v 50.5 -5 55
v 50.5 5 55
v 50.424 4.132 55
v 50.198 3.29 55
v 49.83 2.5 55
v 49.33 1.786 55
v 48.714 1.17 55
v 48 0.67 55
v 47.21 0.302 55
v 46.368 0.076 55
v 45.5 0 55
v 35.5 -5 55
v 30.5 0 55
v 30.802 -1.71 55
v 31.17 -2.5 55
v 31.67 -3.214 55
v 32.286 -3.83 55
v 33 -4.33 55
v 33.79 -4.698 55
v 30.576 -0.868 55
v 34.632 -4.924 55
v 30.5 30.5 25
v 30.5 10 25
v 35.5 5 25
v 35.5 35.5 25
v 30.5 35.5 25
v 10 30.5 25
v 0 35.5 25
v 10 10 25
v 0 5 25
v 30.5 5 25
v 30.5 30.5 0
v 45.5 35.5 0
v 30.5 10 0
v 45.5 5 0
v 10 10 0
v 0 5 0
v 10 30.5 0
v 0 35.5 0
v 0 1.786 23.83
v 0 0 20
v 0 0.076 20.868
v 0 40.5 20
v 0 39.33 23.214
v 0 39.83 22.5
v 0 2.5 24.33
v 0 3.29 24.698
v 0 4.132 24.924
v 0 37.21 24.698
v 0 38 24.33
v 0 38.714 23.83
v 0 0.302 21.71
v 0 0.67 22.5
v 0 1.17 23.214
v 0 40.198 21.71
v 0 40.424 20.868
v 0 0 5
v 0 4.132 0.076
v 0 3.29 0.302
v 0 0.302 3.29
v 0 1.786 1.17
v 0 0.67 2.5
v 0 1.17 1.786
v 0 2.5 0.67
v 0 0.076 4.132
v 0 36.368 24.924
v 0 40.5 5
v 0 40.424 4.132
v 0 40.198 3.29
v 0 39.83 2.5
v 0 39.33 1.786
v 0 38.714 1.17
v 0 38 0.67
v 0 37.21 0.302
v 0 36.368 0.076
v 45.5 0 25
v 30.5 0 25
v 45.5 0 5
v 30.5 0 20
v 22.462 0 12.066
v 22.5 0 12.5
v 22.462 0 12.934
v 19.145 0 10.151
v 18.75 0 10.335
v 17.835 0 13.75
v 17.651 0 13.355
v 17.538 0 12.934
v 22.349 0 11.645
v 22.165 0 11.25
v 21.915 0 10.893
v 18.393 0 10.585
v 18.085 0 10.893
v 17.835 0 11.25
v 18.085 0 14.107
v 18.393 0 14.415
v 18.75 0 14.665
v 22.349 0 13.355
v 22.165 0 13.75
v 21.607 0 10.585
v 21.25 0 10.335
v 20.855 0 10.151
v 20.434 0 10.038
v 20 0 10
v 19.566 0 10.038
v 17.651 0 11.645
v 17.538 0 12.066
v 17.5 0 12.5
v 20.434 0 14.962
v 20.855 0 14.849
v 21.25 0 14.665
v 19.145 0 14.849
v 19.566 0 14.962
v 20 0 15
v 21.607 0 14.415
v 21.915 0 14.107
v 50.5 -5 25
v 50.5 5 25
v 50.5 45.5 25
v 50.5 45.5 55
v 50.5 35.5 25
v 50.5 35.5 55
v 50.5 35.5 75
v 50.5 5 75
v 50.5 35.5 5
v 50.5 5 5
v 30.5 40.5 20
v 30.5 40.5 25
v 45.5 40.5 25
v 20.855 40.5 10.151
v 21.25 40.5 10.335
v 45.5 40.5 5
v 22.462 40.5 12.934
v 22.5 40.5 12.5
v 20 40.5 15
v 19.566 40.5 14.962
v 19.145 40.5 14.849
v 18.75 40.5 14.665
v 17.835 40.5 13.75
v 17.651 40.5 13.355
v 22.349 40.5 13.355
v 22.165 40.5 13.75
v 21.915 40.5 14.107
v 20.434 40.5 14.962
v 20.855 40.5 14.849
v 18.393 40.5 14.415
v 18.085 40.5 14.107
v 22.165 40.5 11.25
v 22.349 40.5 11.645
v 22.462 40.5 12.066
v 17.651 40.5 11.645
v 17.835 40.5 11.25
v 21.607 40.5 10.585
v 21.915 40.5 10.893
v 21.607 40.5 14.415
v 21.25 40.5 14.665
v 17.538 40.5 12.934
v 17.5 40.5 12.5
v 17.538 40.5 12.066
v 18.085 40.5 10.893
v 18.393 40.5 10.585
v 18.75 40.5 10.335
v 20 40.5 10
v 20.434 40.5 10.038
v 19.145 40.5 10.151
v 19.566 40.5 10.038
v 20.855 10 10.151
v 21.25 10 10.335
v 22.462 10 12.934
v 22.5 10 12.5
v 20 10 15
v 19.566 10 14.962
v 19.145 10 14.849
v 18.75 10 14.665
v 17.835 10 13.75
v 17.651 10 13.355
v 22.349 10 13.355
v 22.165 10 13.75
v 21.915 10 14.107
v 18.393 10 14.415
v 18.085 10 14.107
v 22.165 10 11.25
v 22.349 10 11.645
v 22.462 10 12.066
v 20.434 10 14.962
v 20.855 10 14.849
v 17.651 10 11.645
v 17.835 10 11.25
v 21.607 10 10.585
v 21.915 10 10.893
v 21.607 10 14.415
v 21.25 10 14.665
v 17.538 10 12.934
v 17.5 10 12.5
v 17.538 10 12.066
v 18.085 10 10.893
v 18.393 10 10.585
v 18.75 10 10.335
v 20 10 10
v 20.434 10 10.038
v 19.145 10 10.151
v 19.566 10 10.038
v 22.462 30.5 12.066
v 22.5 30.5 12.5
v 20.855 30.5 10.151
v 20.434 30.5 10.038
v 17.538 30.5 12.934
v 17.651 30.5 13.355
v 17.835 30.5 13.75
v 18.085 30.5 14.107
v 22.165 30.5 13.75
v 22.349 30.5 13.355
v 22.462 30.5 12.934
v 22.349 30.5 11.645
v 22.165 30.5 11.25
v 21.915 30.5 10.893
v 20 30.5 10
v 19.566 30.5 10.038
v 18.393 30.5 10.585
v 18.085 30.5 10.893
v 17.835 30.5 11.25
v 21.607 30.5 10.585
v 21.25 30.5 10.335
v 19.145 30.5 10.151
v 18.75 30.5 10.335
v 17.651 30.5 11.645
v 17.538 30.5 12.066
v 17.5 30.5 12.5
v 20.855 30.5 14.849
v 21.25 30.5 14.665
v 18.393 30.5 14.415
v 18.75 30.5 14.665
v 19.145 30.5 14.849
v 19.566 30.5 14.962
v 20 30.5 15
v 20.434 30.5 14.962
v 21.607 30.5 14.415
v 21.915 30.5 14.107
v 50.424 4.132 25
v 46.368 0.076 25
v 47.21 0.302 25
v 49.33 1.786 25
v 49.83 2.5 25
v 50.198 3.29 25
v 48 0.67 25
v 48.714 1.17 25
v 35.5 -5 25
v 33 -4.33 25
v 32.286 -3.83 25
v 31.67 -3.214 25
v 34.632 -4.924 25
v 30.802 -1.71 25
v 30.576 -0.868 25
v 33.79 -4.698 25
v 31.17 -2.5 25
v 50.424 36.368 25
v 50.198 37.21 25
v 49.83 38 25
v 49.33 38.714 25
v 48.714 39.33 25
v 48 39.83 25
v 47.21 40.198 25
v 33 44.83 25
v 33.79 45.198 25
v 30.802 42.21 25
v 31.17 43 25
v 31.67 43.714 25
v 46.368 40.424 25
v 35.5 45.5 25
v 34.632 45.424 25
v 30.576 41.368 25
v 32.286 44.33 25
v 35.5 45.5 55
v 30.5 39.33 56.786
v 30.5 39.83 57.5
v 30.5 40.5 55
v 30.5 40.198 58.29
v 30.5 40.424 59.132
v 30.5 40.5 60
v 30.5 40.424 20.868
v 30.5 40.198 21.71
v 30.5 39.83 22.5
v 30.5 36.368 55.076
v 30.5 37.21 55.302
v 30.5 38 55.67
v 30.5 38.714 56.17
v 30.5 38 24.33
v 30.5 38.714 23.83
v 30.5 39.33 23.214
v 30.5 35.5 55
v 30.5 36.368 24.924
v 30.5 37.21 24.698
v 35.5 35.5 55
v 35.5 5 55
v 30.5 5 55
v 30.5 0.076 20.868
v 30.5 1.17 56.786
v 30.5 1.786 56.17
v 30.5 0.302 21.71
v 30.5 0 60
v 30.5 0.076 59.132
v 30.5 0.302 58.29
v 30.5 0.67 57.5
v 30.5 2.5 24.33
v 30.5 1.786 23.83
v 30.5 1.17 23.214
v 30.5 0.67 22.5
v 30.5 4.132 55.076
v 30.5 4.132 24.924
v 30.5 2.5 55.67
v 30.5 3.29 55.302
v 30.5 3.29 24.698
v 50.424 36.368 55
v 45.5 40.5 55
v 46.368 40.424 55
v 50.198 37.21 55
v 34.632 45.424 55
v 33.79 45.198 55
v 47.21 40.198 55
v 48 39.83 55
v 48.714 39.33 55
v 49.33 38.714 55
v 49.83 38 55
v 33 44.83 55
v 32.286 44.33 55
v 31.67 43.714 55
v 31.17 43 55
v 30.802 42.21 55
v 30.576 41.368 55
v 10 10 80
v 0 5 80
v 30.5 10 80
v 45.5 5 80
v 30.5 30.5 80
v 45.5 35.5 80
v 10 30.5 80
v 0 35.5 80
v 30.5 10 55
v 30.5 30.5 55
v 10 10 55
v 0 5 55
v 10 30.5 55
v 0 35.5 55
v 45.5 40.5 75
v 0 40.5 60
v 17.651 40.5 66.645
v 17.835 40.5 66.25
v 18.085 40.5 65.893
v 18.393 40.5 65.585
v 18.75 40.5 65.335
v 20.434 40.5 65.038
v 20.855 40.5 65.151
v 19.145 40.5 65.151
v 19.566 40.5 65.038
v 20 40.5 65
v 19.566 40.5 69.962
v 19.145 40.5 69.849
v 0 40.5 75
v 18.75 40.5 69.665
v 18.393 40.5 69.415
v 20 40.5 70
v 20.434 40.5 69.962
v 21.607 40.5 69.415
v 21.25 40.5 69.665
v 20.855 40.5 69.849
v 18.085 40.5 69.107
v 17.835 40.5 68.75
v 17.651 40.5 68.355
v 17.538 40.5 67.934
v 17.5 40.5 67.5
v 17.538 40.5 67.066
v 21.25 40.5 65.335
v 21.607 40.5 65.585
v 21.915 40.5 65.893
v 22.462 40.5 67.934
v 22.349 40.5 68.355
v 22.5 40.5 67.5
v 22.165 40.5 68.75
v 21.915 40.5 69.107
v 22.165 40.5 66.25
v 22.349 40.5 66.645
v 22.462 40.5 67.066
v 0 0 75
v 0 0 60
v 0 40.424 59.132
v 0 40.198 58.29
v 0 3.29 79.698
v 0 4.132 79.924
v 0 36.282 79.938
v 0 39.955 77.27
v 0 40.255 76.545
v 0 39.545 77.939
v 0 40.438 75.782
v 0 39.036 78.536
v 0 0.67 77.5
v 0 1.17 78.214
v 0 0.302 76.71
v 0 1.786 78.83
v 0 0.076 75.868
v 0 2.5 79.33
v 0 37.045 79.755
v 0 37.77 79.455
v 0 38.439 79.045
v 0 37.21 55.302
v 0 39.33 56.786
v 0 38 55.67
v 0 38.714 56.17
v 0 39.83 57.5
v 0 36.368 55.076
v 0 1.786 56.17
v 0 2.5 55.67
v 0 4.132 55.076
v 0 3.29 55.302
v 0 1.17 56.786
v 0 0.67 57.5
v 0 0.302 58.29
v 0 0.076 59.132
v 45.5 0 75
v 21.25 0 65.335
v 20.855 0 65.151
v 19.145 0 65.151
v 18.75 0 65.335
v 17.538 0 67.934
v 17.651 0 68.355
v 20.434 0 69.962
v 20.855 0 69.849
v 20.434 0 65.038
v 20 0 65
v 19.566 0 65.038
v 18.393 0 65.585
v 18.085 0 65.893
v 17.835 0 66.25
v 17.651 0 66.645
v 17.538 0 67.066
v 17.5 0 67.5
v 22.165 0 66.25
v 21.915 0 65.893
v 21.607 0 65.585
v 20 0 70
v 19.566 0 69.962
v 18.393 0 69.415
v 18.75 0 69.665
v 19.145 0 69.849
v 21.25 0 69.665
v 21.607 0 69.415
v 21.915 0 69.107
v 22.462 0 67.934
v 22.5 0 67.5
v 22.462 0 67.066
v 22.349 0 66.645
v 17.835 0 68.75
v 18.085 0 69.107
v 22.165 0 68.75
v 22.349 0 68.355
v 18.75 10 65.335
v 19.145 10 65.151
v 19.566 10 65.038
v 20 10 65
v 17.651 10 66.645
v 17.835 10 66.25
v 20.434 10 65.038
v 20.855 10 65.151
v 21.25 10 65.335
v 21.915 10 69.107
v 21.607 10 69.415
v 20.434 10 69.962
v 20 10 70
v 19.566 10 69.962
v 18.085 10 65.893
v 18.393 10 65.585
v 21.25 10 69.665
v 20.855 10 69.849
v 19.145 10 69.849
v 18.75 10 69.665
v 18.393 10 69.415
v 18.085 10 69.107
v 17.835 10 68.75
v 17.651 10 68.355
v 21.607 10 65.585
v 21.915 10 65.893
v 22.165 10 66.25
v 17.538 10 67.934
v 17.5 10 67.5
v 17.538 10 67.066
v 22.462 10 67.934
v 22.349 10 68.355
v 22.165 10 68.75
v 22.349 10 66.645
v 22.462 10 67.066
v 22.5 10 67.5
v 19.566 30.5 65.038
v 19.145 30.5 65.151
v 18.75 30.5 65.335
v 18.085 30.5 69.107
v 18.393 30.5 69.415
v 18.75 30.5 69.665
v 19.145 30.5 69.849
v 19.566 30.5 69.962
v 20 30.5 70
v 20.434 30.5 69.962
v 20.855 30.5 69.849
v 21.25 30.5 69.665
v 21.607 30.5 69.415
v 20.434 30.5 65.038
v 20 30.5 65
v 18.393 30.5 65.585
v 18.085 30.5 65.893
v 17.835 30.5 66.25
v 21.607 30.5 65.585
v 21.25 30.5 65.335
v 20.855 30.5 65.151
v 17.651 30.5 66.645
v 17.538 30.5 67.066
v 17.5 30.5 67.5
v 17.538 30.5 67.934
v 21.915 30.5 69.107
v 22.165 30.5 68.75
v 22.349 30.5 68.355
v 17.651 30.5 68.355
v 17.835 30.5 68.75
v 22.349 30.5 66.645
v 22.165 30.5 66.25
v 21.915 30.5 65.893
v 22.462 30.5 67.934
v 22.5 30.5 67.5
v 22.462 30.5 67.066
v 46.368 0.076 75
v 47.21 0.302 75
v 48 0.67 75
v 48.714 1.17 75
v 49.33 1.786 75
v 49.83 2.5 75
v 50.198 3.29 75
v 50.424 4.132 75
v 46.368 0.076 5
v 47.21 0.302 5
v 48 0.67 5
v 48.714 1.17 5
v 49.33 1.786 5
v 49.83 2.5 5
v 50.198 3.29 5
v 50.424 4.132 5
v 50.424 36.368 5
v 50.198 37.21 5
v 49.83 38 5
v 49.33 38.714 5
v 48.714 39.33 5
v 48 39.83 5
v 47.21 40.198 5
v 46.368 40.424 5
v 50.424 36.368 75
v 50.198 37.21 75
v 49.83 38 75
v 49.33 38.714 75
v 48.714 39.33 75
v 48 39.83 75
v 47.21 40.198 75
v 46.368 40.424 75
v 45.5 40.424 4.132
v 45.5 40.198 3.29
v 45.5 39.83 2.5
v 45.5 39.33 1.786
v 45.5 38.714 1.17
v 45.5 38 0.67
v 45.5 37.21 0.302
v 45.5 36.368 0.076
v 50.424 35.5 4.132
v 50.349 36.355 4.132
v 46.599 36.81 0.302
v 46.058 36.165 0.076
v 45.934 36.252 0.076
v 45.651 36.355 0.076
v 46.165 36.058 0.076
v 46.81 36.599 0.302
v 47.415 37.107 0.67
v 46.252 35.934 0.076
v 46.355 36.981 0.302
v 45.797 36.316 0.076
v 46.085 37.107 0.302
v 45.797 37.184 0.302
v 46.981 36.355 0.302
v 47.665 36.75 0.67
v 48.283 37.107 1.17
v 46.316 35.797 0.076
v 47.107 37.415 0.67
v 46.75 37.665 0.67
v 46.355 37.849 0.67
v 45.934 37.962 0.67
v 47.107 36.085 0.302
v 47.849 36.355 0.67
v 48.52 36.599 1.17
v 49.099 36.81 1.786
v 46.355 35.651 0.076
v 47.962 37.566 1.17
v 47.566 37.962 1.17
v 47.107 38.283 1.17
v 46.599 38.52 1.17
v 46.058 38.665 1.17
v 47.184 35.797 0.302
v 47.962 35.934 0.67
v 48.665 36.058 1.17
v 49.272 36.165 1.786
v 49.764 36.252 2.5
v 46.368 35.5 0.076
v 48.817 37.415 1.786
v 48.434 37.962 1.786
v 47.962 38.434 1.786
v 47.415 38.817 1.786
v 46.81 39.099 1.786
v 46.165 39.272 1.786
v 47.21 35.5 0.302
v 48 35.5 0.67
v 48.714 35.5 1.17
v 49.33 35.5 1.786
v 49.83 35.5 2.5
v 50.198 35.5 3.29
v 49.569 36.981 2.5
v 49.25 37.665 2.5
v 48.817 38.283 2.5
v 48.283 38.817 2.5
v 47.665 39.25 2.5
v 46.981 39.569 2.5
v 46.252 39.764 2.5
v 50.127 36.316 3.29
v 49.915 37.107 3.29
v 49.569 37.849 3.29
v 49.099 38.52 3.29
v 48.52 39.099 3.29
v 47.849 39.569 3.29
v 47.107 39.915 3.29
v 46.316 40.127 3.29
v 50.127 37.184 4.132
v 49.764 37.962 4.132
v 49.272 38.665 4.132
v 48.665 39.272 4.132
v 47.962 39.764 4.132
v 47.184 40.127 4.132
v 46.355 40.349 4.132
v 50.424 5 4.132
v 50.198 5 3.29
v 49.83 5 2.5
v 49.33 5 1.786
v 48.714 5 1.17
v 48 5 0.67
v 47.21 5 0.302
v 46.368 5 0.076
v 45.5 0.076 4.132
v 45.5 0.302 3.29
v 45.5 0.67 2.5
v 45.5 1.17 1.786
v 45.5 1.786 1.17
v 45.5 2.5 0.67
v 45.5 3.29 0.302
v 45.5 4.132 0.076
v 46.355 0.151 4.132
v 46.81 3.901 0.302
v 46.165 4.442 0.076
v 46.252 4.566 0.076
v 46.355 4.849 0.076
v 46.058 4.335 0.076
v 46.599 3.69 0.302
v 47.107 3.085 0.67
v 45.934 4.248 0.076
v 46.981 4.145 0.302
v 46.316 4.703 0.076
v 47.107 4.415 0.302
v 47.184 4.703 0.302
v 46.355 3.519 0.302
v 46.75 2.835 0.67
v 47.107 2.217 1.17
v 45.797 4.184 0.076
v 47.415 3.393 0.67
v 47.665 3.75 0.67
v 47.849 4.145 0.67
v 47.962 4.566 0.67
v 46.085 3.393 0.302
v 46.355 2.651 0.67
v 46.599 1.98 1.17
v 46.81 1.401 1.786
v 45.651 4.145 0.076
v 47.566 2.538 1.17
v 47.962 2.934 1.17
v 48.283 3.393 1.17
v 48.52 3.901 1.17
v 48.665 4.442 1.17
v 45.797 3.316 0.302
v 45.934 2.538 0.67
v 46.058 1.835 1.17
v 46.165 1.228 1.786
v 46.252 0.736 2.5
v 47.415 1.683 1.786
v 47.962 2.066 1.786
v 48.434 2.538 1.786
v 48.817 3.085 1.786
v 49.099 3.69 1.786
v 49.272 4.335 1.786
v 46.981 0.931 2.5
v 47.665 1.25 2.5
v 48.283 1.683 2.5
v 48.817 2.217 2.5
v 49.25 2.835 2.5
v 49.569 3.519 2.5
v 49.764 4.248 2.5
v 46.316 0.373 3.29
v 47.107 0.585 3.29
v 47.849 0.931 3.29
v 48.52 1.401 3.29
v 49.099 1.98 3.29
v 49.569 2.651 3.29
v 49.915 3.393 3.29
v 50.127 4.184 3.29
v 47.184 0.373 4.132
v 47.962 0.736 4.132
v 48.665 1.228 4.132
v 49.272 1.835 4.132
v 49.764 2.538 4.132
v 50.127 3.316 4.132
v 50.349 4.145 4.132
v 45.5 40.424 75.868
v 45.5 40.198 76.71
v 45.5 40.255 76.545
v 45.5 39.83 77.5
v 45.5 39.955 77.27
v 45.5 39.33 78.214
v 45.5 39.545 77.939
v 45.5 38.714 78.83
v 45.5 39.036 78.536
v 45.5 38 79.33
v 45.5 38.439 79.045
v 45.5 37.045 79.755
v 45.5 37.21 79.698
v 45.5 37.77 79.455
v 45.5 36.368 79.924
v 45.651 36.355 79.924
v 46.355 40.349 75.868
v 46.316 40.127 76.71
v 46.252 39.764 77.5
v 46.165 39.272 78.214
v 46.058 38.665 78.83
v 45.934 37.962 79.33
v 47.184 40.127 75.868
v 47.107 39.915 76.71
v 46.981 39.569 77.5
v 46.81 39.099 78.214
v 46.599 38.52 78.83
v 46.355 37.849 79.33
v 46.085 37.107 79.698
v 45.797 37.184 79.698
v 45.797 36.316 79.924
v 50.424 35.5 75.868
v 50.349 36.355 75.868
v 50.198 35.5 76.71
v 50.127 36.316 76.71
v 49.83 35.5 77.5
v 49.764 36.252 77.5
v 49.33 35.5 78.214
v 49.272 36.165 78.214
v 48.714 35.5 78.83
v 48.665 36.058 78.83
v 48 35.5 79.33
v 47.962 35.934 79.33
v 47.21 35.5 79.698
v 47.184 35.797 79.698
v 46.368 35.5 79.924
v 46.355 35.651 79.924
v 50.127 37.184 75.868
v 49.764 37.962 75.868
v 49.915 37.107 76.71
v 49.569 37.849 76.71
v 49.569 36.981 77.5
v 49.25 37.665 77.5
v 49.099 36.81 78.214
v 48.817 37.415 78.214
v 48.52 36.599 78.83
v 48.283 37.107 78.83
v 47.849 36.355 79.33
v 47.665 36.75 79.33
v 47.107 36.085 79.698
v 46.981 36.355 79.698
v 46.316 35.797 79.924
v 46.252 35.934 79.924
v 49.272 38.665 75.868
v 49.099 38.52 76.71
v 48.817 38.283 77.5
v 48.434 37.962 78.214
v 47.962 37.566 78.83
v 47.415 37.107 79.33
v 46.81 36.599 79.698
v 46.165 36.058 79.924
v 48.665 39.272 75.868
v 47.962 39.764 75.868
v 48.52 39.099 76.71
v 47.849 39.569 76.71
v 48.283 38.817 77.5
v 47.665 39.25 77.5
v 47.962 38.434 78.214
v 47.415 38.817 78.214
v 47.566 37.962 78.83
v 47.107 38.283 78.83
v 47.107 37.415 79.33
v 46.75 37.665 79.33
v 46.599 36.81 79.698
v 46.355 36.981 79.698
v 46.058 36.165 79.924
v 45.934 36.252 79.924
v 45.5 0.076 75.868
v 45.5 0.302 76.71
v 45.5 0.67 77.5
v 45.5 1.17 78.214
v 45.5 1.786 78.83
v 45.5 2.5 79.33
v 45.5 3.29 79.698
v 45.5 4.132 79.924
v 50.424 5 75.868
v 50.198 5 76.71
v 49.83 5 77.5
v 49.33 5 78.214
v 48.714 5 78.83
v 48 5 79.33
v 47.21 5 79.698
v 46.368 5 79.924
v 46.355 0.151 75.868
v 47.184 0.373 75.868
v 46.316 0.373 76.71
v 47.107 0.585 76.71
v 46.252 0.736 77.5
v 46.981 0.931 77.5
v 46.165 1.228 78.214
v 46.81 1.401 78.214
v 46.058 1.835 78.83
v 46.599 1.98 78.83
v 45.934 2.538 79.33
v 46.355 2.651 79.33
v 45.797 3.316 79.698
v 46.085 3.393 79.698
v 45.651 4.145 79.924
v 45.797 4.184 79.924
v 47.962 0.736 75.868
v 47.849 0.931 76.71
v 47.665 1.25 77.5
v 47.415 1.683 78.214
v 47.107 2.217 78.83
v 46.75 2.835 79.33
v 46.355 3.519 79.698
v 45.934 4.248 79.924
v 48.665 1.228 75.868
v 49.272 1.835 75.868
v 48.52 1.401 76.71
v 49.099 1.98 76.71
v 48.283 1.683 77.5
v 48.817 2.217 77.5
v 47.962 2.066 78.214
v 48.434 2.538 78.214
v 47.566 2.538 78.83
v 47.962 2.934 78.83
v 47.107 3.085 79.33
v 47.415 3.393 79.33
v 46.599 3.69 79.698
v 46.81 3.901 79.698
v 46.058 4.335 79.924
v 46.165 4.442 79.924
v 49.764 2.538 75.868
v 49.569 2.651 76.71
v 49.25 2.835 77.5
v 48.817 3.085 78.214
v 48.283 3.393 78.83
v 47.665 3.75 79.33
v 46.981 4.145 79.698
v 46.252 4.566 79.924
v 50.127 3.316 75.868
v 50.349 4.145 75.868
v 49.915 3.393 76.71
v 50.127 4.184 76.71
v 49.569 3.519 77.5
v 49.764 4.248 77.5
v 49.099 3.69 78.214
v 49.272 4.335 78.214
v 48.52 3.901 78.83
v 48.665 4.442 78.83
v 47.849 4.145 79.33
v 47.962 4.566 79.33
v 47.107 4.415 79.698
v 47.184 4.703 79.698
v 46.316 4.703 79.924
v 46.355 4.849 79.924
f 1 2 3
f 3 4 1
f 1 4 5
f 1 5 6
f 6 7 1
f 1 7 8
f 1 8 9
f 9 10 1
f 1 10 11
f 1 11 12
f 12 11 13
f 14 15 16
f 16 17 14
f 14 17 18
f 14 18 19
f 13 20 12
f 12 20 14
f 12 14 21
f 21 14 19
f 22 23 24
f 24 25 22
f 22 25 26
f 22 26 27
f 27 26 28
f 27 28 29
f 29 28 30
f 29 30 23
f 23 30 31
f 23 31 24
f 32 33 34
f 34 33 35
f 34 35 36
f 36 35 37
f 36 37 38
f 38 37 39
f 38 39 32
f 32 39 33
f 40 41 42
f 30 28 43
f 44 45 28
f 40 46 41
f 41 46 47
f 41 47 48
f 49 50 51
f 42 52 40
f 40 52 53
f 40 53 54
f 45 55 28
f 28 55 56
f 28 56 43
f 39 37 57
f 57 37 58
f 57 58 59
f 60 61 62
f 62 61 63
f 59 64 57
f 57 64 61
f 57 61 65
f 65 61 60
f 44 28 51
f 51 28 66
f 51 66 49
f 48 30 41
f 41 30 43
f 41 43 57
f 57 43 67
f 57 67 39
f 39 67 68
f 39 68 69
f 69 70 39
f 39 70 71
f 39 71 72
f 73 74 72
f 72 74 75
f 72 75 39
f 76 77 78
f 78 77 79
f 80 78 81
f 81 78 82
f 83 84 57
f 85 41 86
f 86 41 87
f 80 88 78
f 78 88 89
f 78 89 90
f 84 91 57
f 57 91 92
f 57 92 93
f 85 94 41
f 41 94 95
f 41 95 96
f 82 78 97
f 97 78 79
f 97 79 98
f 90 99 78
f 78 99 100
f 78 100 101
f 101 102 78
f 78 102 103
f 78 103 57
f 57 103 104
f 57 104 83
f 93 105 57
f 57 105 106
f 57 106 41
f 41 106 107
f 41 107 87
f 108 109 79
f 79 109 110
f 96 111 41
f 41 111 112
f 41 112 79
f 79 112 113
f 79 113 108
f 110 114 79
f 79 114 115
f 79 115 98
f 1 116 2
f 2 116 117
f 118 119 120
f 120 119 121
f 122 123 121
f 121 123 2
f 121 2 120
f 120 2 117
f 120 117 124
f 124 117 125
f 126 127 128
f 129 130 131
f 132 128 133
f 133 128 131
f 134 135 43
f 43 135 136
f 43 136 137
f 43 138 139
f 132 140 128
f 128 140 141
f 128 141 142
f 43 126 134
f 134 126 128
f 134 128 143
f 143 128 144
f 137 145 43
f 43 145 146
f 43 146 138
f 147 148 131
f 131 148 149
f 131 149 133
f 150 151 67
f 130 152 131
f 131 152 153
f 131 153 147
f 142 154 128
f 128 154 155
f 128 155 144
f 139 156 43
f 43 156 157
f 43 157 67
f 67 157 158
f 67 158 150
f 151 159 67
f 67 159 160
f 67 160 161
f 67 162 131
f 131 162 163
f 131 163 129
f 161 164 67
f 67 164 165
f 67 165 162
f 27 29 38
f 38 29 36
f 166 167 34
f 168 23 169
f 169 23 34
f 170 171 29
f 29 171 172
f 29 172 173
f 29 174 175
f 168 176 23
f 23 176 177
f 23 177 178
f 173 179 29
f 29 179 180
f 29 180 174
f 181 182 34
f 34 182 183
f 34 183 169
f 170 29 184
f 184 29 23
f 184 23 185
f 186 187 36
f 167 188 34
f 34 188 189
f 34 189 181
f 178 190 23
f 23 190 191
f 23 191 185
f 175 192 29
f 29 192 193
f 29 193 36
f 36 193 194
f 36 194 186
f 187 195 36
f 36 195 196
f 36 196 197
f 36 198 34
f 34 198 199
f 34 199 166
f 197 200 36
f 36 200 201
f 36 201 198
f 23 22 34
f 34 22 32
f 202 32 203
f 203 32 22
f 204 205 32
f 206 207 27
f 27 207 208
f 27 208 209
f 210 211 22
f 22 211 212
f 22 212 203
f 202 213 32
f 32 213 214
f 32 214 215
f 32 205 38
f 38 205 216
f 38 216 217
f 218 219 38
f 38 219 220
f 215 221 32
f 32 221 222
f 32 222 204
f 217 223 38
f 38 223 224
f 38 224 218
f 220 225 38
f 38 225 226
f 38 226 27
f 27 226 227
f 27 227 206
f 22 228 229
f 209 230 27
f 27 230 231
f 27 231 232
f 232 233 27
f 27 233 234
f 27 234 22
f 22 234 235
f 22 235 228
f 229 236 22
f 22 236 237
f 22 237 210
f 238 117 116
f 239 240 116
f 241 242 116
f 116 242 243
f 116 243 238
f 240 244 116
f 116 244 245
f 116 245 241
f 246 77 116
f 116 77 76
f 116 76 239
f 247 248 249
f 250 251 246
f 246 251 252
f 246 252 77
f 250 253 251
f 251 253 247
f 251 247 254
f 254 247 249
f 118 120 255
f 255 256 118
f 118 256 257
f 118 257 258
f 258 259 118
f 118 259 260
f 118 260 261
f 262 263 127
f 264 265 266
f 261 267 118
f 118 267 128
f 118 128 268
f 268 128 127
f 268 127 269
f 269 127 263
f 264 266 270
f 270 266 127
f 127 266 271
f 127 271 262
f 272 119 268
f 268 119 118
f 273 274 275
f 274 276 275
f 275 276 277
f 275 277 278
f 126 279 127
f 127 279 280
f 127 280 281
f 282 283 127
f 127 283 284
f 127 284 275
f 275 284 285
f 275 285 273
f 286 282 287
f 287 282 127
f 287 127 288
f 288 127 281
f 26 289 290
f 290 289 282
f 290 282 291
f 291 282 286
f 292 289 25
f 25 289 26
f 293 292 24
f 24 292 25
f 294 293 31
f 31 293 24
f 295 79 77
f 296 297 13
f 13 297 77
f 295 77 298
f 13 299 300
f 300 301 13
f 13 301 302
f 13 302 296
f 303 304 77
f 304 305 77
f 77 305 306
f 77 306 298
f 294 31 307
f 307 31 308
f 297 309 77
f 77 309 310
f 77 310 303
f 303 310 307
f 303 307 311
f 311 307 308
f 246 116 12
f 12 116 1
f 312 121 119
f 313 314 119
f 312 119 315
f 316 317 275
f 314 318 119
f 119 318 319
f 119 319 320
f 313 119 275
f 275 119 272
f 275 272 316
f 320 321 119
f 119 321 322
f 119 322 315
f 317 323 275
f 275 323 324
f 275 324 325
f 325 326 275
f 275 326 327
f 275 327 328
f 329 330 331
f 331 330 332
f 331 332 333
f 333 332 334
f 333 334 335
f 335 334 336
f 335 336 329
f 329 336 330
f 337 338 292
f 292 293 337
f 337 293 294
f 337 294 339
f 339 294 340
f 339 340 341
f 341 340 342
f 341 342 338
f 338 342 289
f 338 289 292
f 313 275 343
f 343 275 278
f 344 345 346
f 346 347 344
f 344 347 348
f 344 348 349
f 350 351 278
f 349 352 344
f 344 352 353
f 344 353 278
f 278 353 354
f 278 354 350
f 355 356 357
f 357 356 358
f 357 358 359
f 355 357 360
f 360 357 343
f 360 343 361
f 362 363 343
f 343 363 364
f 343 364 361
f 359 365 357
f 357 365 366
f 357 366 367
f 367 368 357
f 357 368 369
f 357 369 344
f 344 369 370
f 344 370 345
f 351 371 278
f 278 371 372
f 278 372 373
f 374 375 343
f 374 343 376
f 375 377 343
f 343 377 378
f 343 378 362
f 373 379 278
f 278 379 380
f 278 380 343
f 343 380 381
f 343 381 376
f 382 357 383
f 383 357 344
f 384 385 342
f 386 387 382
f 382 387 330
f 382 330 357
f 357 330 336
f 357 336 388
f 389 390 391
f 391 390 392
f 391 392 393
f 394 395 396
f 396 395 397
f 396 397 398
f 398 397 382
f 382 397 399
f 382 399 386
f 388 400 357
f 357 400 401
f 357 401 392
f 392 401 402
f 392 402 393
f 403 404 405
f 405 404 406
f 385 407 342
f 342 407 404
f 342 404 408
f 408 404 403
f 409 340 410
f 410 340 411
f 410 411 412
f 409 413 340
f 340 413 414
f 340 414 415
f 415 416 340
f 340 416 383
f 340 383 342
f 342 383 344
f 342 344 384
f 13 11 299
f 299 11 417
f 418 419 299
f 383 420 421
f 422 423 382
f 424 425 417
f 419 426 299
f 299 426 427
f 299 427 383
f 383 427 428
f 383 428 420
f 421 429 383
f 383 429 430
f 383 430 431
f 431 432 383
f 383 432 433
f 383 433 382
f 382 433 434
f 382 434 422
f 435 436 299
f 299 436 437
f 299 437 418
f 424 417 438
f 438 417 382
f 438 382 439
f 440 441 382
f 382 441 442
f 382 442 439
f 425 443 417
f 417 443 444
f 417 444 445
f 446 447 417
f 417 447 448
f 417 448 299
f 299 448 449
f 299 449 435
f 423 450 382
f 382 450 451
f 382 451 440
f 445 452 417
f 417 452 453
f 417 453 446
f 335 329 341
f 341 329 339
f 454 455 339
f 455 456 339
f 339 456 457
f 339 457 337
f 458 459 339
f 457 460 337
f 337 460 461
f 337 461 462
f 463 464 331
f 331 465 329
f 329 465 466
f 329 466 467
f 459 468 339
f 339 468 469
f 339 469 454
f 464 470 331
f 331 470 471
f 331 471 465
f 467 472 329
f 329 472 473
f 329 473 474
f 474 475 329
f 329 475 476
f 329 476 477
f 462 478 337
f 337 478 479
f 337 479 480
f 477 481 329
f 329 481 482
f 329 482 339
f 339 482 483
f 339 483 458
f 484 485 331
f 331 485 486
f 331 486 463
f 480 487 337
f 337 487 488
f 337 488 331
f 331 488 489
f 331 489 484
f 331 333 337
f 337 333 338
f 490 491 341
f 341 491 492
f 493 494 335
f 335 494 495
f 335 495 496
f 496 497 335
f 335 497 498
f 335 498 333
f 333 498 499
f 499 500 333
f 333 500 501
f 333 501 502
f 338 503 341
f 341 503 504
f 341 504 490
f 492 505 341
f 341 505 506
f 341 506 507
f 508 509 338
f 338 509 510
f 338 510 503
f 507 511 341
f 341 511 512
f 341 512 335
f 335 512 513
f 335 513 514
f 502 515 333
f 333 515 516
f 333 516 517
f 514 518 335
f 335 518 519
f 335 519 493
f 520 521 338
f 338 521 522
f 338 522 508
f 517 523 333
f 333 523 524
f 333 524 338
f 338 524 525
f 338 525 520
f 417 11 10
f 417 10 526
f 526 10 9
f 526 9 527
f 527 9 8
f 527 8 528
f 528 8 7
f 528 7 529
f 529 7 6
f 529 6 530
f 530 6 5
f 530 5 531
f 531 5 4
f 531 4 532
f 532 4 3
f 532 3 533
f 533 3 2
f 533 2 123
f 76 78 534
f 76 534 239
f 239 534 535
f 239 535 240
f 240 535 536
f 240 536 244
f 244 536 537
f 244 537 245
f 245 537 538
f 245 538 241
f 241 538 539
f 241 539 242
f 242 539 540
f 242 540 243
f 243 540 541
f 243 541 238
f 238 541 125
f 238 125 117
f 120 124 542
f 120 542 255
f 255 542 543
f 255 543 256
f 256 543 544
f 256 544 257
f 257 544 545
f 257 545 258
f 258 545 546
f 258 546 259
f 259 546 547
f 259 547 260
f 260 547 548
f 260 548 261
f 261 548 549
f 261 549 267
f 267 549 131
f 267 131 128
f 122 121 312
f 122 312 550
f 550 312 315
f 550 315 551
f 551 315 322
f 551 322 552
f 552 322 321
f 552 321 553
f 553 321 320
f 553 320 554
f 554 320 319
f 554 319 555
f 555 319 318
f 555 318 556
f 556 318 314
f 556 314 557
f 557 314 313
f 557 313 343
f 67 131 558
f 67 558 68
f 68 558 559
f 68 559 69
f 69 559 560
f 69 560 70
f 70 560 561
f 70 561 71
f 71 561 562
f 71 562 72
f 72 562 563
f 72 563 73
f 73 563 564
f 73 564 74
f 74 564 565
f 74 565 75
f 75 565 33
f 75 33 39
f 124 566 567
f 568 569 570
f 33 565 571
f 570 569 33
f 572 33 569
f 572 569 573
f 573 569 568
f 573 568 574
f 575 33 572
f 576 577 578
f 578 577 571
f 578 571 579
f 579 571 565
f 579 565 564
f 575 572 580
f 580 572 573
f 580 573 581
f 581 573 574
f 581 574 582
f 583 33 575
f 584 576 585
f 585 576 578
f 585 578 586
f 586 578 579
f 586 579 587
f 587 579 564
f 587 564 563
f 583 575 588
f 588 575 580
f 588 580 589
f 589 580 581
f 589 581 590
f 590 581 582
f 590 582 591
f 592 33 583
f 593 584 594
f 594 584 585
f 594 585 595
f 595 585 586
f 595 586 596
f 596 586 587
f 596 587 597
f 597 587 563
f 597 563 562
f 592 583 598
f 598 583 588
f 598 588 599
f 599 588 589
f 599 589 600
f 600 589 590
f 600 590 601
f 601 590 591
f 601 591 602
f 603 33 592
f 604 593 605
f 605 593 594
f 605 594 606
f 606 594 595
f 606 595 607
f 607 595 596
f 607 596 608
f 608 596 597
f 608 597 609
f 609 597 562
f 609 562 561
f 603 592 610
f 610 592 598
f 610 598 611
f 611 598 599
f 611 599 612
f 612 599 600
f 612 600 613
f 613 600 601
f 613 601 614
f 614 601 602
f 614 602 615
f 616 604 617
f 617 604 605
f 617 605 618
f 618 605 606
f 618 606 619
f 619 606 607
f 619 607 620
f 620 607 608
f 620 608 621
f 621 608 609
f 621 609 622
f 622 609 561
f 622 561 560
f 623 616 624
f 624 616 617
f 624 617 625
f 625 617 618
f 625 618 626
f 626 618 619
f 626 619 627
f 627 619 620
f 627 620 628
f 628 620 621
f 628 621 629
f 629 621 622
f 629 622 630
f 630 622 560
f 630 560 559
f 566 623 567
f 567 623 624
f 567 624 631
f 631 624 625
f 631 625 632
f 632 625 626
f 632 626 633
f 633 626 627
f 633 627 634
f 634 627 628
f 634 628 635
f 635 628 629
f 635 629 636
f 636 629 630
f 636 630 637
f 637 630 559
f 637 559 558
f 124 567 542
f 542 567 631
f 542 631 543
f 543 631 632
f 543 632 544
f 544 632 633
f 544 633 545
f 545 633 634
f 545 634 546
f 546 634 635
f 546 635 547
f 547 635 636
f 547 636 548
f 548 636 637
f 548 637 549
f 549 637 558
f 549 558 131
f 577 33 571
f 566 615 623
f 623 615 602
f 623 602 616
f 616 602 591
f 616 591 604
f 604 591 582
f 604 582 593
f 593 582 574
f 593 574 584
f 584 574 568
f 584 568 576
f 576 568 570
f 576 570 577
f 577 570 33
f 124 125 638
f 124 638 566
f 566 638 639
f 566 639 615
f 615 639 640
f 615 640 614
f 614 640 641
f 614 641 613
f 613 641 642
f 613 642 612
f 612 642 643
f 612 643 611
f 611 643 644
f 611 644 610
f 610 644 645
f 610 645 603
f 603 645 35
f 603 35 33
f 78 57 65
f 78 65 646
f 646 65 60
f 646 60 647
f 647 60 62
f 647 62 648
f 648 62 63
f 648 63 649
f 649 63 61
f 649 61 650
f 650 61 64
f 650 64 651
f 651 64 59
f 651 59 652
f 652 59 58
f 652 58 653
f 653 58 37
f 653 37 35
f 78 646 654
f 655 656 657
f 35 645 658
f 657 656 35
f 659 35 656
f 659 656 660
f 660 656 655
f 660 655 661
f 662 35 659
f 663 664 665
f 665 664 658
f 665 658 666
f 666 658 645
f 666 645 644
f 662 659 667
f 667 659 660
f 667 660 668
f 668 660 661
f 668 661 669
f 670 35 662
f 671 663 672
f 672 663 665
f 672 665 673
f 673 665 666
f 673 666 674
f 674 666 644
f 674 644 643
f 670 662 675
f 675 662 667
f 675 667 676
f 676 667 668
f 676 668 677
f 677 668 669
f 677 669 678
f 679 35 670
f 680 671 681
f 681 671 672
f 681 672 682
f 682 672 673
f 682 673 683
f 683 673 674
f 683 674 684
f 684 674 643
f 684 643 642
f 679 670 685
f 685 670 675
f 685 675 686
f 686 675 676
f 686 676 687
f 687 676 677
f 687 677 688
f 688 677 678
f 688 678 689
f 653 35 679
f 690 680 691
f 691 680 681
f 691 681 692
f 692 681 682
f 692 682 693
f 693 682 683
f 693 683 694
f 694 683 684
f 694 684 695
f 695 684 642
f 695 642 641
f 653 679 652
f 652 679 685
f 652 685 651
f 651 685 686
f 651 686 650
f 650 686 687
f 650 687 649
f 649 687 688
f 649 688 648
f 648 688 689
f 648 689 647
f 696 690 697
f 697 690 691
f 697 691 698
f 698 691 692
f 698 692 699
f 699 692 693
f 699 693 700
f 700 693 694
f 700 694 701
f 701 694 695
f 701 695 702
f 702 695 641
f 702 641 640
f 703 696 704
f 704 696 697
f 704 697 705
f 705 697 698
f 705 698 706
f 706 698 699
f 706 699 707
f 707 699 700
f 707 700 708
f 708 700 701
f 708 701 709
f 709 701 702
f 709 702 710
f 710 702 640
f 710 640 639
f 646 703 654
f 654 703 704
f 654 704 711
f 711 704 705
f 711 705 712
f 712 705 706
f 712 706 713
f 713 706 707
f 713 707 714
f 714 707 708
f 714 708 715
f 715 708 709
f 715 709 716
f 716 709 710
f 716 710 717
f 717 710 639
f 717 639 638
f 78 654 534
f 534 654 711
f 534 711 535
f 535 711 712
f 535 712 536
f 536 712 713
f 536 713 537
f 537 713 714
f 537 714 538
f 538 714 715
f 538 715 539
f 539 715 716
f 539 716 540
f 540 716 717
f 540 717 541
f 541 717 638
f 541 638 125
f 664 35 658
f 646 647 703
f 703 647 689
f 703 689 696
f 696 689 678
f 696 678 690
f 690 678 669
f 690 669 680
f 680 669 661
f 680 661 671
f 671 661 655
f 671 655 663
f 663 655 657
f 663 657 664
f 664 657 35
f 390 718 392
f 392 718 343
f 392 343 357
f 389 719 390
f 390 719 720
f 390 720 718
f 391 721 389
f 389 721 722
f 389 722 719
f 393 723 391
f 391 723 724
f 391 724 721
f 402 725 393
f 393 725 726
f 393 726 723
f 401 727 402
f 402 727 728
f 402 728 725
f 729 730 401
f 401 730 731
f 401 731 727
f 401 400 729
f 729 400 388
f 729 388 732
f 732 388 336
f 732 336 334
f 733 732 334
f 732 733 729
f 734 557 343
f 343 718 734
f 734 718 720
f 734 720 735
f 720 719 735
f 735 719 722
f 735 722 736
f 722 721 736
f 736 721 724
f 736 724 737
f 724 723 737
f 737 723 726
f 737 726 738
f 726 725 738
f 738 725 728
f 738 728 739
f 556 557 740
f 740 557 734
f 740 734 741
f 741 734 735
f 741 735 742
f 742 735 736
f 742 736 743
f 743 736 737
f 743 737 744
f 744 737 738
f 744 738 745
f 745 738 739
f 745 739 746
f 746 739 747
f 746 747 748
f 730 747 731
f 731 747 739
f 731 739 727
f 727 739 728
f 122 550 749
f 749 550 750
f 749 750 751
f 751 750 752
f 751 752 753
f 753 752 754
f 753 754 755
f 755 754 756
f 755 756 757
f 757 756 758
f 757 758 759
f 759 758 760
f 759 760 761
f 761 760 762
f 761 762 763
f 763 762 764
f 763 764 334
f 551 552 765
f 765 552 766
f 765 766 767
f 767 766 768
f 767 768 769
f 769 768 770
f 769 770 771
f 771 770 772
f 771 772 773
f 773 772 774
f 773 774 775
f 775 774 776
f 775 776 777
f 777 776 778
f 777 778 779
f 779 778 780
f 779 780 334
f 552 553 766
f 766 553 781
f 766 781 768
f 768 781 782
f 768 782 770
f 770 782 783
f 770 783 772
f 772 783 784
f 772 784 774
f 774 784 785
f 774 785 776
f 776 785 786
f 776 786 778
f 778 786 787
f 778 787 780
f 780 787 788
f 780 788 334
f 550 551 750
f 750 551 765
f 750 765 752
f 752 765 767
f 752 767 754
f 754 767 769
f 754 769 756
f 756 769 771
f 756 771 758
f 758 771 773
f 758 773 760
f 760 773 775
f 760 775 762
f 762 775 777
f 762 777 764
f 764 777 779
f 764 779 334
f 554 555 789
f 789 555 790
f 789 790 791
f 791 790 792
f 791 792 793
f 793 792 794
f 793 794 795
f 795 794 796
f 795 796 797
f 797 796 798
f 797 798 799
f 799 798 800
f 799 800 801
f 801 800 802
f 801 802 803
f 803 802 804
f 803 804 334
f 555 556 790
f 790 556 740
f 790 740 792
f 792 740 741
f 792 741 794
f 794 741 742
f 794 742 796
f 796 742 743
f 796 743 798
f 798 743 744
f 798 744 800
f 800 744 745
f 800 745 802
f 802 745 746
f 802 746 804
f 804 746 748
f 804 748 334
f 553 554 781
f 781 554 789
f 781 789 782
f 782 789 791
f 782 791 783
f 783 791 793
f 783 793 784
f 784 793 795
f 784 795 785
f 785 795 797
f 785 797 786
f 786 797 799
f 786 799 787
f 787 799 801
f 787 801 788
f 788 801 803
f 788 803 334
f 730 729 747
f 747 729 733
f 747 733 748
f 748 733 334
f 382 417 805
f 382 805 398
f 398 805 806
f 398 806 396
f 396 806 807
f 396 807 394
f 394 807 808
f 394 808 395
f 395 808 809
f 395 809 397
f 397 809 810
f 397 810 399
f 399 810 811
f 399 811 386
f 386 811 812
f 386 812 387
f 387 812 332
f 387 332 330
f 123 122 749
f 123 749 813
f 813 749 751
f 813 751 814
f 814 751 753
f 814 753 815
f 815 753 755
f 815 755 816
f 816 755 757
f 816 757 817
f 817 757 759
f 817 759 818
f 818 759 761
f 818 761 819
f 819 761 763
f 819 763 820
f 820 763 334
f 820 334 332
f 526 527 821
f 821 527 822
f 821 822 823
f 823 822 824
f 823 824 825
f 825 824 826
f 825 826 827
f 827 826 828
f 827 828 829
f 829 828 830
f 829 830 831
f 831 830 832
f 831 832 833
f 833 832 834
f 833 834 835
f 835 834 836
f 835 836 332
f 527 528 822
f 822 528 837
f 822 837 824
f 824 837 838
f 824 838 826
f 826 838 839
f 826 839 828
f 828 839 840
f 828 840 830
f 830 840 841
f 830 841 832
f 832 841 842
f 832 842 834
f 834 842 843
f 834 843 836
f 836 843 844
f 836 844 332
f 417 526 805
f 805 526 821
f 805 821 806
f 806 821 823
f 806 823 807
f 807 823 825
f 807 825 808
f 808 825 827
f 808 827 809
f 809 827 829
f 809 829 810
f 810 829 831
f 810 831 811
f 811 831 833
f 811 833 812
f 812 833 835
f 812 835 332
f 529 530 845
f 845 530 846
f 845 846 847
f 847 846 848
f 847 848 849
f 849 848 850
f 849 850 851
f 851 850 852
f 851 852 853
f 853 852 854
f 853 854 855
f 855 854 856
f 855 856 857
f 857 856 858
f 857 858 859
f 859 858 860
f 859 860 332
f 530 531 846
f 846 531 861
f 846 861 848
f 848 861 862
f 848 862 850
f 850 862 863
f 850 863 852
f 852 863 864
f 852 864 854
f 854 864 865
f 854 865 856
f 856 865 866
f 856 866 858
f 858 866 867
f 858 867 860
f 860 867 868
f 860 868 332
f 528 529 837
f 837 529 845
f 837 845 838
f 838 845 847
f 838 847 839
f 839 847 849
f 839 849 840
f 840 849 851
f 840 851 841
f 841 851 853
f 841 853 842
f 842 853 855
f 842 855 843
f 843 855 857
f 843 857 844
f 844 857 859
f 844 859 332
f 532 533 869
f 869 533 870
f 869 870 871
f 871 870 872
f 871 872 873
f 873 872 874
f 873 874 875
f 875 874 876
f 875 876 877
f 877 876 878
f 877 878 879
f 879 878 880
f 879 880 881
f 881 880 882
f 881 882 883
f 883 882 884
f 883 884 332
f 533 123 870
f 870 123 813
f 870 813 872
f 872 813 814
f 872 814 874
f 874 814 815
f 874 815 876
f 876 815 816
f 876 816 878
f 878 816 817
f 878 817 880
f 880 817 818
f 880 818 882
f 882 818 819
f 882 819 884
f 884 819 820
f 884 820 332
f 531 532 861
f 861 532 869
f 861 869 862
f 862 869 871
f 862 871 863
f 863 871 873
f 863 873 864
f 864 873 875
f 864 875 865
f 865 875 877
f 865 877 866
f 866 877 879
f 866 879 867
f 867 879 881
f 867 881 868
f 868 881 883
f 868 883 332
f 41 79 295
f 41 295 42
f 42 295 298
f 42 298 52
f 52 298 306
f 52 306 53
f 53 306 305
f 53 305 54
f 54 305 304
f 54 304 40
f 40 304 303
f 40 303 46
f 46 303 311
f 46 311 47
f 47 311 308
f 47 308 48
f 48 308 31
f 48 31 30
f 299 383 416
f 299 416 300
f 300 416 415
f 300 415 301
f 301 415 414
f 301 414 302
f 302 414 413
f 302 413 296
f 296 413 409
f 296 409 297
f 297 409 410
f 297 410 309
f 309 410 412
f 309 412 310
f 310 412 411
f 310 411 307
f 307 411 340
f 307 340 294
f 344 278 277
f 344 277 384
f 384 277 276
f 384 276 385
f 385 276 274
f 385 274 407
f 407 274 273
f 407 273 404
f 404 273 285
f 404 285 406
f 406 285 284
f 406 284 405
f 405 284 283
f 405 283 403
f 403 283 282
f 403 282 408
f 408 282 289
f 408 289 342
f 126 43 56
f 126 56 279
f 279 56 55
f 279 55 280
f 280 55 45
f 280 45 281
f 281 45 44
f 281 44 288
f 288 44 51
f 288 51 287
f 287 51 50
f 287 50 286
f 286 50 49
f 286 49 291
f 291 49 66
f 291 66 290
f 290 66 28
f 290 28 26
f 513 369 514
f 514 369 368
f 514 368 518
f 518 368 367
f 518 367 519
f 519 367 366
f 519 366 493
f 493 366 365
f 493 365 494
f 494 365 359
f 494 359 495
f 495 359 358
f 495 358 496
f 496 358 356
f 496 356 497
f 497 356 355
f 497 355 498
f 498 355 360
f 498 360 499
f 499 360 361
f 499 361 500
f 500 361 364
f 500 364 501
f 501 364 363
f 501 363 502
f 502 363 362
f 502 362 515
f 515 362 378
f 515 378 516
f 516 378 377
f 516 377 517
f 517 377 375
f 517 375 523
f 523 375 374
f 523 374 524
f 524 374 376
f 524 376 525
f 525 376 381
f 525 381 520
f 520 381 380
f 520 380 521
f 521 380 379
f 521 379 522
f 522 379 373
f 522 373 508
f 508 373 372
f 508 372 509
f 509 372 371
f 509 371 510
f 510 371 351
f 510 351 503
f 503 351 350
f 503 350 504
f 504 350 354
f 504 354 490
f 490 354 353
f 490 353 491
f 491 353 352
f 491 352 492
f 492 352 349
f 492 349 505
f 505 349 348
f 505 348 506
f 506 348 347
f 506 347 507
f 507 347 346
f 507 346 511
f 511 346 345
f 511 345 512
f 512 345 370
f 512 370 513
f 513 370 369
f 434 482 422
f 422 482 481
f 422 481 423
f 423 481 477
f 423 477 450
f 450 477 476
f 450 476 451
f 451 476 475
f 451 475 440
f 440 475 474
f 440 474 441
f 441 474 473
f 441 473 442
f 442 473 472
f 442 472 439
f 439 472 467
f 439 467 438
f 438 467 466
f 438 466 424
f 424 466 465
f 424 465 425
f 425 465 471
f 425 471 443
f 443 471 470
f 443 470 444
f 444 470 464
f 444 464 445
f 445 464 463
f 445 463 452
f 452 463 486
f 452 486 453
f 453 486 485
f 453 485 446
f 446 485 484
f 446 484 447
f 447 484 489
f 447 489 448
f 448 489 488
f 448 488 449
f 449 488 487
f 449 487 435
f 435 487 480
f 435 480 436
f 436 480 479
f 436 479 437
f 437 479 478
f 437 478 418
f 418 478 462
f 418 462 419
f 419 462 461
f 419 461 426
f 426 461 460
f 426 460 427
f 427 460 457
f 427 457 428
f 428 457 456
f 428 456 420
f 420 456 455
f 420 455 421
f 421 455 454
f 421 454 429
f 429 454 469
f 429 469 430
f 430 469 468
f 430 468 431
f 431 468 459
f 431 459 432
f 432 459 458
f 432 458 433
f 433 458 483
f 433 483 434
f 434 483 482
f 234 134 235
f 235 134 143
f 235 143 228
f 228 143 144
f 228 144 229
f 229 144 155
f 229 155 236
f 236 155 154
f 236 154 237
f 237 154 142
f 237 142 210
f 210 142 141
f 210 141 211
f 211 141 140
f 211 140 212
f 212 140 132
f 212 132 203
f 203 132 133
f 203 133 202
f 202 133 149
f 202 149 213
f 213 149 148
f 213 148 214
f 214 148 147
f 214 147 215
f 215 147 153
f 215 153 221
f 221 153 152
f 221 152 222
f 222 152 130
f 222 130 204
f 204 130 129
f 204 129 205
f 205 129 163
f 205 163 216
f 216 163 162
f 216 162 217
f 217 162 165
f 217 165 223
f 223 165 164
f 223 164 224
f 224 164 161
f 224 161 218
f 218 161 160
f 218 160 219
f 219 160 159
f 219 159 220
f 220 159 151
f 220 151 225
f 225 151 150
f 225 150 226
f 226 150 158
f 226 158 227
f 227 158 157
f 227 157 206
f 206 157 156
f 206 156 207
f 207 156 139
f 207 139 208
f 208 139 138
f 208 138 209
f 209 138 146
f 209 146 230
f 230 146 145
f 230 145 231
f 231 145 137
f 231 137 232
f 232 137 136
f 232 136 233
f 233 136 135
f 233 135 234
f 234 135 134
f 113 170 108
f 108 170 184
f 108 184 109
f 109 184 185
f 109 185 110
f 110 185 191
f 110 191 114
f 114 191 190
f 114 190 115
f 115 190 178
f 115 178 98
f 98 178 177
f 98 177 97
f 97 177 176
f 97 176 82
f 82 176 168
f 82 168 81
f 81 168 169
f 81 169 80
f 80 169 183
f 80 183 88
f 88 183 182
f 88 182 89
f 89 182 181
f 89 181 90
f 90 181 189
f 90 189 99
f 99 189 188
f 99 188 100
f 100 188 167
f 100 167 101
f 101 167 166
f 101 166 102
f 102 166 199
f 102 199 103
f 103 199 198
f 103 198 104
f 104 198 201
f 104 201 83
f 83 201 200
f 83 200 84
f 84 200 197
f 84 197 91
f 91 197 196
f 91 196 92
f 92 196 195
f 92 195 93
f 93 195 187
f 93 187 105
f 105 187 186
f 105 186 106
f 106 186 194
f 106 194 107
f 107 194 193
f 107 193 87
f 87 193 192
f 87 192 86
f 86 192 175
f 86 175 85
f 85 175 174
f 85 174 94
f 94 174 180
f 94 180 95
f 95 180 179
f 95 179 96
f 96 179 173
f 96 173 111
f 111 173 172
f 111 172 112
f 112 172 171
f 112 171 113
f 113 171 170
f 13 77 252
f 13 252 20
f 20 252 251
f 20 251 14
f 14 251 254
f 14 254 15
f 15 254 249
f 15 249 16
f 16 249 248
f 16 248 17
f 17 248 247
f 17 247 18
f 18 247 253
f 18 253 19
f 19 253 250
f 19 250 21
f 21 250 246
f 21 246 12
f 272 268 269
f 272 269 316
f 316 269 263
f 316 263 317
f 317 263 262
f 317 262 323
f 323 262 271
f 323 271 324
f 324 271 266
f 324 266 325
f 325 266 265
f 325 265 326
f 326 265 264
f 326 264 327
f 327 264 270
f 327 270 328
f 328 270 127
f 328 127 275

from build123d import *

# Parameters (mm, degrees)
SKETCH2_W           = 50.5
SKETCH2_H           = 40.5
SKETCH2_W_2         = 20.5
SKETCH2_H_2         = 20.5
BOSS_EXTRUDE3_DEPTH = 25
BOSS_EXTRUDE5_DEPTH = 30
SKETCH6_W           = 50.5
SKETCH6_H           = 40.5
SKETCH6_W_2         = 20.5
SKETCH6_H_2         = 20.5
BOSS_EXTRUDE6_DEPTH = 25
FILLET6_R           = 5
FILLET8_R           = 5
FILLET10_R          = 5
HOLE1_OUTLINE_R     = 2.5
HOLE1_DEPTH         = 40.5
HOLE2_OUTLINE_R     = 2.5
HOLE2_DEPTH         = 40.5
FILLET11_R          = 5


# Read off the part's stored shape, not the designer's step: Hole1, Hole2
with BuildPart() as part:
    # Sketch2 → Boss-Extrude3 (new body)
    with BuildSketch(Plane.XY):
        with Locations((25.25, 20.25)):
            Rectangle(SKETCH2_W, SKETCH2_H)
        with Locations((20.25, 20.25)):
            Rectangle(SKETCH2_W_2, SKETCH2_H_2, mode=Mode.SUBTRACT)
    extrude(amount=BOSS_EXTRUDE3_DEPTH)

    # Sketch5 → Boss-Extrude5 (add)
    with BuildSketch(Plane.XY.offset(25)):
        Polygon((50.5, 40.5), (50.5, 0), (50.5, -5), (30.5, -5), (30.5, 0), (30.5, 5), (35.5, 5), (35.5, 35.5), (30.5, 35.5), (30.5, 40.5), (30.5, 45.5), (50.5, 45.5), align=None)
    extrude(amount=BOSS_EXTRUDE5_DEPTH)

    # Sketch6 → Boss-Extrude6 (add)
    with BuildSketch(Plane.XY.offset(55)):
        with Locations((25.25, 20.25)):
            Rectangle(SKETCH6_W, SKETCH6_H)
        with Locations((20.25, 20.25)):
            Rectangle(SKETCH6_W_2, SKETCH6_H_2, mode=Mode.SUBTRACT)
    extrude(amount=BOSS_EXTRUDE6_DEPTH)

    # Fillet6
    fillet6_edges = [part.edges().sort_by_distance(p)[0] for p in [
        (50.5, 0, 67.5),
        (50.5, 40.5, 67.5),
        (50.5, 40.5, 12.5),
        (50.5, 0, 12.5),
    ]]
    fillet(fillet6_edges, radius=FILLET6_R)

    # Fillet8
    fillet8_edges = [part.edges().sort_by_distance(p)[0] for p in [
        (22.75, 0, 0),
        (22.75, 0, 80),
        (50.5, 20.25, 0),
        (50.5, 20.25, 80),
        (22.75, 40.5, 80),
        (49.035533906, 39.035533906, 80),
        (49.035533906, 1.464466094, 80),
        (22.75, 40.5, 0),
        (49.035533906, 39.035533906, 0),
        (49.035533906, 1.464466094, 0),
    ]]
    fillet(fillet8_edges, radius=FILLET8_R)

    # Fillet10
    # the kernel refuses this fillet: 5 mm, written as the material it takes off along each edge
    with BuildSketch(Plane(origin=(-12.5, 0, 25), x_dir=(0, 0, -1), z_dir=(1, 0, 0)), Plane(origin=(-12.5, 0, 55), x_dir=(0, 1, 0), z_dir=(1, 0, 0)), Plane(origin=(30.5, 40.5, 55), x_dir=(0, -1, 0), z_dir=(-1, 0, 0))) as fillet10_piece_1:
        with BuildLine():
            CenterArc((FILLET10_R, FILLET10_R), FILLET10_R, 180, 90)
            Line((0, FILLET10_R), (0, 0))
            Line((0, 0), (FILLET10_R, 0))
        make_face()
    extrude(amount=43, mode=Mode.SUBTRACT)
    with BuildSketch(Plane(origin=(30.5, 40.5, 25), x_dir=(0, -1, 0), z_dir=(-1, 0, 0))) as fillet10_piece_2:
        with BuildLine():
            CenterArc((FILLET10_R, -FILLET10_R), FILLET10_R, 90, 90)
            Line((0, -FILLET10_R), (0, 0))
            Line((0, 0), (FILLET10_R, 0))
        make_face()
    extrude(amount=43, mode=Mode.SUBTRACT)

    # Hole1 outline → Hole1 (cut)
    with BuildSketch(Plane(origin=(0, 0, 0), x_dir=(1, 0, 0), z_dir=(0, 1, 0))):
        with Locations((20, -67.5)):
            Circle(HOLE1_OUTLINE_R)
    extrude(amount=HOLE1_DEPTH, mode=Mode.SUBTRACT)

    # Hole2 outline → Hole2 (cut)
    with BuildSketch(Plane(origin=(0, 0, 0), x_dir=(1, 0, 0), z_dir=(0, 1, 0))):
        with Locations((20, -12.5)):
            Circle(HOLE2_OUTLINE_R)
    extrude(amount=HOLE2_DEPTH, mode=Mode.SUBTRACT)

    # Fillet11
    fillet11_edges = [part.edges().sort_by_distance(p)[0] for p in [
        (30.5, -5, 40),
        (30.5, 45.5, 40),
    ]]
    fillet(fillet11_edges, radius=FILLET11_R)


solid = part.part
